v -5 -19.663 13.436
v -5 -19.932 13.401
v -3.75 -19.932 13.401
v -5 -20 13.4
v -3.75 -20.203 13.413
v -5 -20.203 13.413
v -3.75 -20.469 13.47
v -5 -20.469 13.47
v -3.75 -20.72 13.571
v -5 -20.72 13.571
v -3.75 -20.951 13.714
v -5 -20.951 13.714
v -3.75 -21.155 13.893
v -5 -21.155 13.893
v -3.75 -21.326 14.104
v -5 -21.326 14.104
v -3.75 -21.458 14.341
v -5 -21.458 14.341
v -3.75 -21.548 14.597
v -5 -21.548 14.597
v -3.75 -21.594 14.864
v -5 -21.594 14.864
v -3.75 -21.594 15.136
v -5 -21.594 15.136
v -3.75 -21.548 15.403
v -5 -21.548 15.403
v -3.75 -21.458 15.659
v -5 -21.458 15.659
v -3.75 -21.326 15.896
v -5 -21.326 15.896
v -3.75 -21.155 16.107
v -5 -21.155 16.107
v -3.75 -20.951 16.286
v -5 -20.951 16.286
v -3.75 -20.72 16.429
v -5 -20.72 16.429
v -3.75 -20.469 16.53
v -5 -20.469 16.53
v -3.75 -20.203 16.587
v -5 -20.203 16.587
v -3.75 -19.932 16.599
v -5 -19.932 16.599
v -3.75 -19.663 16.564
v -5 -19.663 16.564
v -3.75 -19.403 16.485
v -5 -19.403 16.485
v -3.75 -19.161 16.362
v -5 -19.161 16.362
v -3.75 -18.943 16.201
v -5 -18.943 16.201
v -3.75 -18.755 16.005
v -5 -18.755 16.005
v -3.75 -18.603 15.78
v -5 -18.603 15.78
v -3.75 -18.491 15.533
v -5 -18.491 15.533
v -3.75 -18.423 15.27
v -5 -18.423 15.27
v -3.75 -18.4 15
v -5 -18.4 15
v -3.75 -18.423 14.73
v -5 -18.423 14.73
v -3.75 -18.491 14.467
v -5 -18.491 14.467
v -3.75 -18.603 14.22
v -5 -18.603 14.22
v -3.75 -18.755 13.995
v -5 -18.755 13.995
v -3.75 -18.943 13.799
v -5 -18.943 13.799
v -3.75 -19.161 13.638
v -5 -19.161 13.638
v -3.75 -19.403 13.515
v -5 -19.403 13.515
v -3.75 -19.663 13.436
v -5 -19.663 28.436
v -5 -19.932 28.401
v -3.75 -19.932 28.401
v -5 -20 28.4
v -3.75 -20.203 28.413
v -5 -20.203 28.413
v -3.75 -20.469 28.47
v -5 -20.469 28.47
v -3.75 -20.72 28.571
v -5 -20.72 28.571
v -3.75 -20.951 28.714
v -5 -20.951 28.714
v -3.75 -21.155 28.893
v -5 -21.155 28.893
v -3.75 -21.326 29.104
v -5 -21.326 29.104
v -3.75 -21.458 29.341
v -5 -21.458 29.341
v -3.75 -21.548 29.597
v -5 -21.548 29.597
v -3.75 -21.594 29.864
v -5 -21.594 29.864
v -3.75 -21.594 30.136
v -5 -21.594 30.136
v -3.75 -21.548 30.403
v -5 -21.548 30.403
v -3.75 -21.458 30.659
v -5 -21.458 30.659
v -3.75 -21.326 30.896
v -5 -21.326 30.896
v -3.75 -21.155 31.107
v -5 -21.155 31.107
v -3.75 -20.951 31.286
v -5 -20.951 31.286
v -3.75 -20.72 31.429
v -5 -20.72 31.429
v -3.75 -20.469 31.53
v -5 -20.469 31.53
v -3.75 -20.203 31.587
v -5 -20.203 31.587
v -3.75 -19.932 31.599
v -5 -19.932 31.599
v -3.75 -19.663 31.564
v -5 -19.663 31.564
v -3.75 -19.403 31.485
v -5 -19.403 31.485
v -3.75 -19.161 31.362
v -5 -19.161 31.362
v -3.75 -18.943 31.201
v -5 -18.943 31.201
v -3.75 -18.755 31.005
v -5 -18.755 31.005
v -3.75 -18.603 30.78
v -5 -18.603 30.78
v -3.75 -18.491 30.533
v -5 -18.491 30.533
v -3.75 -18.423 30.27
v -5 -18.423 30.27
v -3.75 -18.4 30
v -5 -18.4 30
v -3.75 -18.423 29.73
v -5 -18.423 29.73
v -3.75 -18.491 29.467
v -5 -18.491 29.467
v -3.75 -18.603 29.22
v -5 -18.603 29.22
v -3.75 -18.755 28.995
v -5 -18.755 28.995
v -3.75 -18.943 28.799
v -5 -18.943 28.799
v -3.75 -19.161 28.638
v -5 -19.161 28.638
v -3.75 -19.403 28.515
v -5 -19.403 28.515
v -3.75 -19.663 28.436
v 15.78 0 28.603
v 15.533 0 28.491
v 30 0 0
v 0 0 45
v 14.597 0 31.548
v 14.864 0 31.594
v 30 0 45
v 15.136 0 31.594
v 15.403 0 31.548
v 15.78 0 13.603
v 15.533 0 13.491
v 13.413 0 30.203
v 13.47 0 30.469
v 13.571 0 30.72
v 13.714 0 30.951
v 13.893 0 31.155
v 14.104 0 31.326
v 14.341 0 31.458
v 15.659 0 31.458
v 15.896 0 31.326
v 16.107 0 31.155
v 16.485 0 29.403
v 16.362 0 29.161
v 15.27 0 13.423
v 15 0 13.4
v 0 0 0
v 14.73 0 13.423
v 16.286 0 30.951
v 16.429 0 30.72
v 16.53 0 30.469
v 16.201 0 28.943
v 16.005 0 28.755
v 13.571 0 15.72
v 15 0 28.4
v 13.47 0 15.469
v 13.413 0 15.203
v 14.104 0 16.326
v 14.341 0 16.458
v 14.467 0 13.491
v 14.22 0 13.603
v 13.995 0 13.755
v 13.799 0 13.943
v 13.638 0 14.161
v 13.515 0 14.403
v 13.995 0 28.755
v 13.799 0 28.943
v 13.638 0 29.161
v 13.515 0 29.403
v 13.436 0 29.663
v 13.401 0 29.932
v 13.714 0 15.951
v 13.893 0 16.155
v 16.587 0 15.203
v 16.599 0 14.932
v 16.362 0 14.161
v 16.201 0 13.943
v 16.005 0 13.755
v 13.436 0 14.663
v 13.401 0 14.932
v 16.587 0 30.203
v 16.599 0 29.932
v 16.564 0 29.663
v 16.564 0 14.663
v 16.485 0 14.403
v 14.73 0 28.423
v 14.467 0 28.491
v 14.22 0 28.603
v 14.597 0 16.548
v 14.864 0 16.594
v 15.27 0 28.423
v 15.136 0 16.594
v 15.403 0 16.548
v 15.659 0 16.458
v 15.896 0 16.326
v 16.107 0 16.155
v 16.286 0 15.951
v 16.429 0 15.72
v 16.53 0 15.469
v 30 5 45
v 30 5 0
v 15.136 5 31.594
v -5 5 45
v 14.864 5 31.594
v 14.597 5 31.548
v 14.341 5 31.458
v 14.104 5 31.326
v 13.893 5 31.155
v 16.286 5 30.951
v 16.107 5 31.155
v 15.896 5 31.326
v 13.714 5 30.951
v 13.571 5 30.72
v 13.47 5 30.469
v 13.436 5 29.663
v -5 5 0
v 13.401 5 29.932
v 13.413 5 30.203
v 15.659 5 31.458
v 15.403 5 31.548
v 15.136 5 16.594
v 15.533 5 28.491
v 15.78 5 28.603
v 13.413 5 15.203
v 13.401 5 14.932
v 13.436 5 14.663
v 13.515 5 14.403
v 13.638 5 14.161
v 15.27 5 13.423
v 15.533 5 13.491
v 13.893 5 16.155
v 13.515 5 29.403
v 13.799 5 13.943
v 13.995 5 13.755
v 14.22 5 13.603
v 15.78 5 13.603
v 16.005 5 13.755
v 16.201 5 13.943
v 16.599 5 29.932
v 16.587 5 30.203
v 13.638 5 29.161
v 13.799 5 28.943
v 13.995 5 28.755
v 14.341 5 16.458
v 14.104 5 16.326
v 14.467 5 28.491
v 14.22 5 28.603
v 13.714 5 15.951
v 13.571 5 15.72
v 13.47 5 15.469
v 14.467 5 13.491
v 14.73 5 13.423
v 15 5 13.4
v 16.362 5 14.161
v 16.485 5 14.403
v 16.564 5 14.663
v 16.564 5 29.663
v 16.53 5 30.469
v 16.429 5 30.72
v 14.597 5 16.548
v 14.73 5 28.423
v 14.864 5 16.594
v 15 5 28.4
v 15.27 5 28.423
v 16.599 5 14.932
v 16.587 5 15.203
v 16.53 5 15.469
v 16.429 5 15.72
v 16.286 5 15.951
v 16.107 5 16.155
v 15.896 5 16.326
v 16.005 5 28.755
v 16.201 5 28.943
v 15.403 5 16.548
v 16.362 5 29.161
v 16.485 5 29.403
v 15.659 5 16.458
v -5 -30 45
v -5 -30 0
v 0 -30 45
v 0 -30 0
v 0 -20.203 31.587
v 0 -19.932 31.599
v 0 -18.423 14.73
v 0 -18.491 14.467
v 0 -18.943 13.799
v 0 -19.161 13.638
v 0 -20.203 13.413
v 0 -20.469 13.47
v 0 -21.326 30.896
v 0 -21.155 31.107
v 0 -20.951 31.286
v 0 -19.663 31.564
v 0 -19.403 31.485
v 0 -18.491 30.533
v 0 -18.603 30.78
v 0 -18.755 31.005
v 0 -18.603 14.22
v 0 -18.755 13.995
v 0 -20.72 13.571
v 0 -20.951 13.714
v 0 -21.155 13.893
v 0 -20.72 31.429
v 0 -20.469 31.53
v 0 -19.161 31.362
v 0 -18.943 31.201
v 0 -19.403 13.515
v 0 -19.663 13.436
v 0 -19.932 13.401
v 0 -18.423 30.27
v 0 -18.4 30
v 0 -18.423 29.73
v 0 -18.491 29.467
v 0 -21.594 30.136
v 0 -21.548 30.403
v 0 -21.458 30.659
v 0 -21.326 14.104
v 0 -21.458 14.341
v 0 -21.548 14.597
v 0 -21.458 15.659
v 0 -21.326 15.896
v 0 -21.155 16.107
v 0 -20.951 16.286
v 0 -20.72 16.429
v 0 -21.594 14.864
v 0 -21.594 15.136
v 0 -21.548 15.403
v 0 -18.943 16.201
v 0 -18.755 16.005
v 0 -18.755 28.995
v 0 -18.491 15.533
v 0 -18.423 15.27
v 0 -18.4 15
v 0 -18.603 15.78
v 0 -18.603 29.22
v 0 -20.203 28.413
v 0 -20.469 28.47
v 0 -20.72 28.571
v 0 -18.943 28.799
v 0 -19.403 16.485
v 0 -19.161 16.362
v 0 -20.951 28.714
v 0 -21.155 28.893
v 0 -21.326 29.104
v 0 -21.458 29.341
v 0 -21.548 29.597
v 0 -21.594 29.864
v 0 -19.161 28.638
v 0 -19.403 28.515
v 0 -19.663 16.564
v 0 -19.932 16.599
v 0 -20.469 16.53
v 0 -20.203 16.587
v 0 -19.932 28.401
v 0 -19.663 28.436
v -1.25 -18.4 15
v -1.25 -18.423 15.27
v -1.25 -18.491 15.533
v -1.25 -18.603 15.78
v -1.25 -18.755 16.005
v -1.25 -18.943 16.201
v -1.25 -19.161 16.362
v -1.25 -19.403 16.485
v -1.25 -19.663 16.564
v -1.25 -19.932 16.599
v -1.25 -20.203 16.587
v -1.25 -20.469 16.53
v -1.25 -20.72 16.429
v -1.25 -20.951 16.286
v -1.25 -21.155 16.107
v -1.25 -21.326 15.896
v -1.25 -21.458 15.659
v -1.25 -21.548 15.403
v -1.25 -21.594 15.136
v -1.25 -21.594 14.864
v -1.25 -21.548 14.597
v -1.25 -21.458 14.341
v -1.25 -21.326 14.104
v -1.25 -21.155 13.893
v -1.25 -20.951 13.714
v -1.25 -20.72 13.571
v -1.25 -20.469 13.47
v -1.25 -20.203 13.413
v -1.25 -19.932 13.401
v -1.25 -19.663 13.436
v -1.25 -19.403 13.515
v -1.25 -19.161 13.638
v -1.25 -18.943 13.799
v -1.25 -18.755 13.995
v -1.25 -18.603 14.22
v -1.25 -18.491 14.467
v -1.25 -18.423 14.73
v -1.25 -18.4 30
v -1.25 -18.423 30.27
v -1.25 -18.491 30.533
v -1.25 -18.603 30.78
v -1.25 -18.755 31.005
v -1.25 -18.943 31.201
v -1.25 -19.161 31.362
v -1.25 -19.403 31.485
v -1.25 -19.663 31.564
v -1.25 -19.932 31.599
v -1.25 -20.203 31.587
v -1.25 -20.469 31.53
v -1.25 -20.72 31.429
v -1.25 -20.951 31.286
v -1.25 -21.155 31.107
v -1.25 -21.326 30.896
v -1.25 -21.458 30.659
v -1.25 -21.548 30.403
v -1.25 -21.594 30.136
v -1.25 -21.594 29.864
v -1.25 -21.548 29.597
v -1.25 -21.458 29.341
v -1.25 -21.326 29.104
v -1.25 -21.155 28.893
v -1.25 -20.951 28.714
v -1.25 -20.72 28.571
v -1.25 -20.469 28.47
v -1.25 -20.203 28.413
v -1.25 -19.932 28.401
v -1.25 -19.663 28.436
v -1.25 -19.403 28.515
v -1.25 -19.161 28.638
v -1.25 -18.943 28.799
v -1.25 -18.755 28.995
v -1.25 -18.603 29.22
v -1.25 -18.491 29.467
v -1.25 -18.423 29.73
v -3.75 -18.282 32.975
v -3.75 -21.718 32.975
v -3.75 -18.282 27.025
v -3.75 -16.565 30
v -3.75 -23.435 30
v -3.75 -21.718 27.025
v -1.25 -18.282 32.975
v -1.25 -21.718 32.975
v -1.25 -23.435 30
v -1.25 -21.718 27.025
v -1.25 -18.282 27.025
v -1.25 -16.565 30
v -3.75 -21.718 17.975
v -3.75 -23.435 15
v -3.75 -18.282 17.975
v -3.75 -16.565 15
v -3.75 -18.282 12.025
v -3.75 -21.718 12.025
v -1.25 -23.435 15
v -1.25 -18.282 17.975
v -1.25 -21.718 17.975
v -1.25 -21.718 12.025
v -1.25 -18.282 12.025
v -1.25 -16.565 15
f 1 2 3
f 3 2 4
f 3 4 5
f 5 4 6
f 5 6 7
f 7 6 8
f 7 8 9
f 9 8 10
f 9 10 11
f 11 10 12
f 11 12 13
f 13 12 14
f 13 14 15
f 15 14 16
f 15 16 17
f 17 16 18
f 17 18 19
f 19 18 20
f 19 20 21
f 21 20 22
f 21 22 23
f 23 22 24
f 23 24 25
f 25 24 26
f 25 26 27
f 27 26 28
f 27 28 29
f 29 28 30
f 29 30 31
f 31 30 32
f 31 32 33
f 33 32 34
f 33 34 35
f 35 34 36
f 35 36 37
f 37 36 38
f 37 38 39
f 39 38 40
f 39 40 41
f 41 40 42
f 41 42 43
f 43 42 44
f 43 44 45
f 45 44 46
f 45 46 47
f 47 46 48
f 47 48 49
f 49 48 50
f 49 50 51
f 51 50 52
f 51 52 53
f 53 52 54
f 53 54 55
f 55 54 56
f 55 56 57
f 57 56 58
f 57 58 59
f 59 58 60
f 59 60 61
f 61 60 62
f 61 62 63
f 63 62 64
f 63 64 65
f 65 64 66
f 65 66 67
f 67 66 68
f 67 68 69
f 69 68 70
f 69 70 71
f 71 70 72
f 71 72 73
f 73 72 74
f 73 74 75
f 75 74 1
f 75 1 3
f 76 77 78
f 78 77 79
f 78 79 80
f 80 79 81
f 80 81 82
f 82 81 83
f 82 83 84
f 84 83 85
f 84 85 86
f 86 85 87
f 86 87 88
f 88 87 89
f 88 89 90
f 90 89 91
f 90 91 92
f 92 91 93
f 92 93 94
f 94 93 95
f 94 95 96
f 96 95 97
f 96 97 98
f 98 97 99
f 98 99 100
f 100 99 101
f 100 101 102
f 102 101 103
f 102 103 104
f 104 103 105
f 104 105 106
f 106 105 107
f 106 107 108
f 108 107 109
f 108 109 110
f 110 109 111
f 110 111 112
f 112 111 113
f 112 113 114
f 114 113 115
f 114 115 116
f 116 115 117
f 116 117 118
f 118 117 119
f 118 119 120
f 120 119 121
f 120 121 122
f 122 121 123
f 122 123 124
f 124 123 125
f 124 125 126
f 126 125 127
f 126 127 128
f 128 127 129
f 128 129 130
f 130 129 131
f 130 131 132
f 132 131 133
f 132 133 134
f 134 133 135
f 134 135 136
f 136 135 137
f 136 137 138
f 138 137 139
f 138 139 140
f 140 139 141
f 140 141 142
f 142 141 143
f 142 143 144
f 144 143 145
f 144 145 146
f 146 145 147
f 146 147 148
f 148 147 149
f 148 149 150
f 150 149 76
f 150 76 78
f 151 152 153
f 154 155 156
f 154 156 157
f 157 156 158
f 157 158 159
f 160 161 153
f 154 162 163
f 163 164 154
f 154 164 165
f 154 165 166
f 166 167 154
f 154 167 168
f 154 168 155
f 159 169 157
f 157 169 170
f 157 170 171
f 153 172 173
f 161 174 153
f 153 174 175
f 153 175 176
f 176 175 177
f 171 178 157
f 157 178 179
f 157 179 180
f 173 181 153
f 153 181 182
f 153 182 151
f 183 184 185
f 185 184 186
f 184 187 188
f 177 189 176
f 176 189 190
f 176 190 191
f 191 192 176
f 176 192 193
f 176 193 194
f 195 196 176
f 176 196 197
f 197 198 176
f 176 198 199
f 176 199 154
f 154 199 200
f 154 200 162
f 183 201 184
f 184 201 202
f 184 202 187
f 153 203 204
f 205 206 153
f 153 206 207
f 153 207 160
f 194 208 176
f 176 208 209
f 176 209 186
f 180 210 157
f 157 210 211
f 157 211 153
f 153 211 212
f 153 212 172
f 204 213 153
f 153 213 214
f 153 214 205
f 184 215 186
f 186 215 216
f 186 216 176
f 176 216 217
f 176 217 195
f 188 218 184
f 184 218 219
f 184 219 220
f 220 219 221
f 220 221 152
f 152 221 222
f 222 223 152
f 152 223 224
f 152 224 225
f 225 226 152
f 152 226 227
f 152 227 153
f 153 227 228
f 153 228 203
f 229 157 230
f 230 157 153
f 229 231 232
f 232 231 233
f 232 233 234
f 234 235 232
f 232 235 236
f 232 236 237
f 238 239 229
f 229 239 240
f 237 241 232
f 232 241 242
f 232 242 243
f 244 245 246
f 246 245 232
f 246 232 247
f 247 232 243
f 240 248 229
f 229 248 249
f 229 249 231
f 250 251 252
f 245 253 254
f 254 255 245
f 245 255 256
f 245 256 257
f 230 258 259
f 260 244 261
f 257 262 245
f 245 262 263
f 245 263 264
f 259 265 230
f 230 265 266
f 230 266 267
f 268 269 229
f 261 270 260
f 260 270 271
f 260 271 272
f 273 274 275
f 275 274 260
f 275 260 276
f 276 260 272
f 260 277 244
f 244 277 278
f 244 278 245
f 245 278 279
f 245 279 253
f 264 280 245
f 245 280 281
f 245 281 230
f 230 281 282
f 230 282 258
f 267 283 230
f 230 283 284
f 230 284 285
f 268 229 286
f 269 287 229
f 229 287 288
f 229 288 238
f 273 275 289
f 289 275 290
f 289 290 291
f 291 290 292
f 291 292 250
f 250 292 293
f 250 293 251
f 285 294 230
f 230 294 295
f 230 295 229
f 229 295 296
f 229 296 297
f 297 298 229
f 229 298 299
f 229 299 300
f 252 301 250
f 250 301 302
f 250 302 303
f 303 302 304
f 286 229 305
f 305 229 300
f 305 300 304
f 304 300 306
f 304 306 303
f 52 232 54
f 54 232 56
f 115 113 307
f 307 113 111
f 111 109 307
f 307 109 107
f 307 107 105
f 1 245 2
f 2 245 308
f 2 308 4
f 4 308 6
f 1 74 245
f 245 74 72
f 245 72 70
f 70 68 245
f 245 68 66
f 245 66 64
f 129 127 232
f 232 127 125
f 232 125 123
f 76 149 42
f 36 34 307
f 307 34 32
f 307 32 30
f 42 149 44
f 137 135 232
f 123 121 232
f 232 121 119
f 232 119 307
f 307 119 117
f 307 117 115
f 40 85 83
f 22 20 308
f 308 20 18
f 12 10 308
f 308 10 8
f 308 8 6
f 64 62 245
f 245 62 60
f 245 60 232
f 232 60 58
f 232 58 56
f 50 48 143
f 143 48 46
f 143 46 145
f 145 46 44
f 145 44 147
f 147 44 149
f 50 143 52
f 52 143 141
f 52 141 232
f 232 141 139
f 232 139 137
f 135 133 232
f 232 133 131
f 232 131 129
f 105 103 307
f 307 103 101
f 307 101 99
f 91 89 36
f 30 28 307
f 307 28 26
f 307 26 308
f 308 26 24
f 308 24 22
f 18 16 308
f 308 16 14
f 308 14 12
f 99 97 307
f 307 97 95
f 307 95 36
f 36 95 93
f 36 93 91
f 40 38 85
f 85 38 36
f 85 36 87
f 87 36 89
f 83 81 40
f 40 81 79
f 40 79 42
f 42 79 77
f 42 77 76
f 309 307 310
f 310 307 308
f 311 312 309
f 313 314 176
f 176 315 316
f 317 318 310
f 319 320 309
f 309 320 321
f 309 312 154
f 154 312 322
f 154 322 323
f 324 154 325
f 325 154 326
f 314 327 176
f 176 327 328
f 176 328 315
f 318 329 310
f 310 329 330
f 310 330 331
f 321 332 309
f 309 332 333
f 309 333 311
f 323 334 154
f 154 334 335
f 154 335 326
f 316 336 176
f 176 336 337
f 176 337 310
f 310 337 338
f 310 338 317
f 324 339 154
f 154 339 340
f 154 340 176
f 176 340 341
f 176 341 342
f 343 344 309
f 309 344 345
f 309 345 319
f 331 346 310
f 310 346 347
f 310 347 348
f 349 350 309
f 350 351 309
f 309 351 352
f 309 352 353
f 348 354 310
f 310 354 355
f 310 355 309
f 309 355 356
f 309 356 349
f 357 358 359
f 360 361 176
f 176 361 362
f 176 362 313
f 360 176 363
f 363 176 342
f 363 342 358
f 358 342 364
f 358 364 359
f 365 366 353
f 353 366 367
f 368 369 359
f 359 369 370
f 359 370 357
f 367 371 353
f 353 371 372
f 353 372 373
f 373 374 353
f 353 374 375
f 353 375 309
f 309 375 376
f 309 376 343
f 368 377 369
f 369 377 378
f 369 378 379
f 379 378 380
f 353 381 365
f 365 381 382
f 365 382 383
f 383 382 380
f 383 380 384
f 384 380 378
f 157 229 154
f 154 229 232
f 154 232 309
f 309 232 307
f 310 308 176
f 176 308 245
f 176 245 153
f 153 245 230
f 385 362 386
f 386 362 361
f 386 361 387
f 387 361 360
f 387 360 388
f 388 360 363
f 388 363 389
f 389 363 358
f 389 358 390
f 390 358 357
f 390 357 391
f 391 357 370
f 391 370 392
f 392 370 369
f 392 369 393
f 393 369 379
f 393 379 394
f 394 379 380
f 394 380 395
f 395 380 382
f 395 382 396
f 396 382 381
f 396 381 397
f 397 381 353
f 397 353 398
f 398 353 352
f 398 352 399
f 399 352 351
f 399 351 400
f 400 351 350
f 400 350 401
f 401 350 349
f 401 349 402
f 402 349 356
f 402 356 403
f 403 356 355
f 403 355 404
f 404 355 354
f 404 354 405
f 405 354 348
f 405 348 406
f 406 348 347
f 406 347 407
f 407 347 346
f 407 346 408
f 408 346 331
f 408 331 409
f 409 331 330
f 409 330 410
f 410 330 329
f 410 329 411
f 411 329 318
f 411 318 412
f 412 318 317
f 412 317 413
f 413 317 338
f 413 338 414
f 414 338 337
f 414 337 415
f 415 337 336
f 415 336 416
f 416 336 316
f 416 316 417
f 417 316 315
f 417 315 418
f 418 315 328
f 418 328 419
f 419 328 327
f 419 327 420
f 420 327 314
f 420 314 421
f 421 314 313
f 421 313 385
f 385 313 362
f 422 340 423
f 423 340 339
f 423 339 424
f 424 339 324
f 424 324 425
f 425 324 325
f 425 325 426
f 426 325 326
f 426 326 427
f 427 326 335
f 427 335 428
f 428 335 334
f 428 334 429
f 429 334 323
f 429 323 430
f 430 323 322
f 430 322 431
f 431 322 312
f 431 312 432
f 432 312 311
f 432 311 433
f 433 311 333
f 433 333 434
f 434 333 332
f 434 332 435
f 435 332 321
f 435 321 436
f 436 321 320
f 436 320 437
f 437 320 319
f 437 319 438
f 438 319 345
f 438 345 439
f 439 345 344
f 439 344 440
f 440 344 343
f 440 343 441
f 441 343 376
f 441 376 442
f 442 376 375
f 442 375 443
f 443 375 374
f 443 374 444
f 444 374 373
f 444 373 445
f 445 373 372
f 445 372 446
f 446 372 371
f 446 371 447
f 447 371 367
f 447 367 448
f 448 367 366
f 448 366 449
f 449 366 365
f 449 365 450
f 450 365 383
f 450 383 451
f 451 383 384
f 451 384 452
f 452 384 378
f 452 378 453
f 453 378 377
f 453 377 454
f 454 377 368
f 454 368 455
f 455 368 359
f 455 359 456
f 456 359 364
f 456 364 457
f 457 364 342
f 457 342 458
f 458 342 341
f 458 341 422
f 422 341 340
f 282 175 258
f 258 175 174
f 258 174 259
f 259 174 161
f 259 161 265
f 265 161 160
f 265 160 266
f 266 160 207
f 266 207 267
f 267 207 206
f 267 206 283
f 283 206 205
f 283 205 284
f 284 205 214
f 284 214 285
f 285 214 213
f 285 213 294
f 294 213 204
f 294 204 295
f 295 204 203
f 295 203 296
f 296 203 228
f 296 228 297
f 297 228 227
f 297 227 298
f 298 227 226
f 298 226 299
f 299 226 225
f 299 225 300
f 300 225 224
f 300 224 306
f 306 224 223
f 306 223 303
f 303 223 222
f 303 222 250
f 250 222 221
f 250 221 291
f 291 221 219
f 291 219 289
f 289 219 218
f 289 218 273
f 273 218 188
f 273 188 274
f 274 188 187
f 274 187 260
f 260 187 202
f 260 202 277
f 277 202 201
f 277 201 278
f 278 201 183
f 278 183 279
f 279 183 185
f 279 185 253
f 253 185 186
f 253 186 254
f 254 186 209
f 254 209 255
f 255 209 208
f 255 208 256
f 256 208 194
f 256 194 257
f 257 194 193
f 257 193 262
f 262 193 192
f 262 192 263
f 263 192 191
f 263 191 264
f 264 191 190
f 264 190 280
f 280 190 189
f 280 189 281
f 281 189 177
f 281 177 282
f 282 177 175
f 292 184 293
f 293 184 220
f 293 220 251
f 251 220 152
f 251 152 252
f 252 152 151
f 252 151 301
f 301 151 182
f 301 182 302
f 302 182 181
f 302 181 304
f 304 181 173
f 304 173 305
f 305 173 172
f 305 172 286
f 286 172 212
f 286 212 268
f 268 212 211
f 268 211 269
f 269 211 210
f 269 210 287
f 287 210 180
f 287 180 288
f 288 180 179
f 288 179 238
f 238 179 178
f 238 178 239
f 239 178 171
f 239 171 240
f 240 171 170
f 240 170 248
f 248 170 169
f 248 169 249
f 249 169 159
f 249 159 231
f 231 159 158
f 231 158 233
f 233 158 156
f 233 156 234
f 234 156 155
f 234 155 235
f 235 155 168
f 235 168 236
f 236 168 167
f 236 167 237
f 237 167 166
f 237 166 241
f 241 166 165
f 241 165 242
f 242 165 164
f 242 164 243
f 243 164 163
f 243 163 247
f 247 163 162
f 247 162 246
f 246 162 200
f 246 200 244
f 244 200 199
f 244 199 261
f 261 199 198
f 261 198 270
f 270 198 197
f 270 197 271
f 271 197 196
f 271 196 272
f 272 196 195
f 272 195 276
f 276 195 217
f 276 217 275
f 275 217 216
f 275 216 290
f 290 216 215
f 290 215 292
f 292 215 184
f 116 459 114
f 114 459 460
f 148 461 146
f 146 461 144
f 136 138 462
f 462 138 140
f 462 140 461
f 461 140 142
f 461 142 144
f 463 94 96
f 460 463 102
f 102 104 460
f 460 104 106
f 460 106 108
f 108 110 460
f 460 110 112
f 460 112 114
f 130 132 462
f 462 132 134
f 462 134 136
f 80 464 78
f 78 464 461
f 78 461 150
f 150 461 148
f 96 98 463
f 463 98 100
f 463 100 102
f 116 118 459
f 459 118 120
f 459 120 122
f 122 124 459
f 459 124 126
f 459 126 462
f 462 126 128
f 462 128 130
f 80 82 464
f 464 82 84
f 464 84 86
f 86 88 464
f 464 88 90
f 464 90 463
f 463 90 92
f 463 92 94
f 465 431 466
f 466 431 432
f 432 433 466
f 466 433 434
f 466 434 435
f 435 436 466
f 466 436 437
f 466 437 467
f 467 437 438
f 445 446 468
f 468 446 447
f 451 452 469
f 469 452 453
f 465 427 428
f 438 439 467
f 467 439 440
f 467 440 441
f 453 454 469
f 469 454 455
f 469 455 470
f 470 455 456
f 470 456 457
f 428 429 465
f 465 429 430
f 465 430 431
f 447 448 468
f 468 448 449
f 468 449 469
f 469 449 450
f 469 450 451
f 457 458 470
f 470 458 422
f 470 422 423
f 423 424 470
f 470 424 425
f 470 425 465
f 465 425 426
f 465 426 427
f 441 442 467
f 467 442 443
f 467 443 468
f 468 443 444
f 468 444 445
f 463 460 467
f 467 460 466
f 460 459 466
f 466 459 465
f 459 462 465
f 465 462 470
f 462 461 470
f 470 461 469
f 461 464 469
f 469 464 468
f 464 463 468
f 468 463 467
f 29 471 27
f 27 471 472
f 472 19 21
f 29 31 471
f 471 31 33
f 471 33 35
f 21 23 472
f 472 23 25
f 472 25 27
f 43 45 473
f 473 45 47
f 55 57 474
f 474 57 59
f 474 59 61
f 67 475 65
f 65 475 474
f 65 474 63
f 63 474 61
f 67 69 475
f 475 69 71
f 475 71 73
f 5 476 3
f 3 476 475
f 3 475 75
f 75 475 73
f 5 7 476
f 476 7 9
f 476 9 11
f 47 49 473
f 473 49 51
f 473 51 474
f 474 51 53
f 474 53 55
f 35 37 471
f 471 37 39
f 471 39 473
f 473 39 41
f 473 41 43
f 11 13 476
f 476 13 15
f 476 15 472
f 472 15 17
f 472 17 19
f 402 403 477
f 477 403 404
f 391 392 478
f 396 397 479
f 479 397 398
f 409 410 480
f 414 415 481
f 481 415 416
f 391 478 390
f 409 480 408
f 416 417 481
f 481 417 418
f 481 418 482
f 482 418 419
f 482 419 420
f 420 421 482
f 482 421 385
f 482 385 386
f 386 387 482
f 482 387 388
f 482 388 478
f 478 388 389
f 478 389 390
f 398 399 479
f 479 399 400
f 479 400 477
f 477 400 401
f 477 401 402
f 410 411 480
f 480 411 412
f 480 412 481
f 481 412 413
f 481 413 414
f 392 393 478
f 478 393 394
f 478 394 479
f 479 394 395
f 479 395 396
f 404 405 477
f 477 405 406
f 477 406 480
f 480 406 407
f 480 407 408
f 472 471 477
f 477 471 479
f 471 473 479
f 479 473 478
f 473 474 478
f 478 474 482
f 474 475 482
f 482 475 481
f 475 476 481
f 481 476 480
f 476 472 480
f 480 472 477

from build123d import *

# Parameters (mm, degrees)
BOSS_EXTRUDE1_DEPTH = 45
CUT_EXTRUDE1_REACH  = 7
SKETCH2_R           = 1.6
CUT_EXTRUDE2_REACH  = 7
SKETCH3_R           = 1.6
CUT_EXTRUDE3_START  = -1.25
CUT_EXTRUDE3_DEPTH  = 2.5


with BuildPart() as part:
    # Sketch1 → Boss-Extrude1 (new body)
    with BuildSketch(Plane.XY):
        Polygon((0, 0), (0, -30), (-5, -30), (-5, 5), (30, 5), (30, 0), align=None)
    extrude(amount=BOSS_EXTRUDE1_DEPTH)

    # Sketch2 → Cut-Extrude1 (cut, up to next)
    with BuildSketch(Plane(origin=(0, 0, 0), x_dir=(0, 0, -1), z_dir=(1, 0, 0)), mode=Mode.PRIVATE) as cut_extrude1_sk1:
        with Locations((-30, -20)):
            Circle(SKETCH2_R)
    cut_extrude1_tool1 = extrude(cut_extrude1_sk1.sketch, amount=-CUT_EXTRUDE1_REACH, mode=Mode.PRIVATE) & part.part
    add(cut_extrude1_tool1.solids().sort_by_distance((0, -20, 30))[0], mode=Mode.SUBTRACT)
    # Sketch2 → Cut-Extrude1 (cut, up to next)
    with BuildSketch(Plane(origin=(0, 0, 0), x_dir=(0, 0, -1), z_dir=(1, 0, 0)), mode=Mode.PRIVATE) as cut_extrude1_sk2:
        with Locations((-15, -20)):
            Circle(SKETCH2_R)
    cut_extrude1_tool2 = extrude(cut_extrude1_sk2.sketch, amount=-CUT_EXTRUDE1_REACH, mode=Mode.PRIVATE) & part.part
    add(cut_extrude1_tool2.solids().sort_by_distance((0, -20, 15))[0], mode=Mode.SUBTRACT)

    # Sketch3 → Cut-Extrude2 (cut, up to next)
    with BuildSketch(Plane.XZ, mode=Mode.PRIVATE) as cut_extrude2_sk1:
        with Locations((15, 30)):
            Circle(SKETCH3_R)
    cut_extrude2_tool1 = extrude(cut_extrude2_sk1.sketch, amount=-CUT_EXTRUDE2_REACH, mode=Mode.PRIVATE) & part.part
    add(cut_extrude2_tool1.solids().sort_by_distance((15, 0, 30))[0], mode=Mode.SUBTRACT)
    # Sketch3 → Cut-Extrude2 (cut, up to next)
    with BuildSketch(Plane.XZ, mode=Mode.PRIVATE) as cut_extrude2_sk2:
        with Locations((15, 15)):
            Circle(SKETCH3_R)
    cut_extrude2_tool2 = extrude(cut_extrude2_sk2.sketch, amount=-CUT_EXTRUDE2_REACH, mode=Mode.PRIVATE) & part.part
    add(cut_extrude2_tool2.solids().sort_by_distance((15, 0, 15))[0], mode=Mode.SUBTRACT)

    # Sketch4 → Cut-Extrude3 (cut)
    with BuildSketch(Plane(origin=(0, 0, 0), x_dir=(0, 0, -1), z_dir=(1, 0, 0)).offset(CUT_EXTRUDE3_START)):
        Polygon((-30, -23.435234102), (-27.025, -21.717617051), (-27.025, -18.282382949), (-30, -16.564765898), (-32.975, -18.282382949), (-32.975, -21.717617051), align=None)
        Polygon((-15, -23.435234102), (-12.025, -21.717617051), (-12.025, -18.282382949), (-15, -16.564765898), (-17.975, -18.282382949), (-17.975, -21.717617051), align=None)
    extrude(amount=-CUT_EXTRUDE3_DEPTH, mode=Mode.SUBTRACT)


solid = part.part
